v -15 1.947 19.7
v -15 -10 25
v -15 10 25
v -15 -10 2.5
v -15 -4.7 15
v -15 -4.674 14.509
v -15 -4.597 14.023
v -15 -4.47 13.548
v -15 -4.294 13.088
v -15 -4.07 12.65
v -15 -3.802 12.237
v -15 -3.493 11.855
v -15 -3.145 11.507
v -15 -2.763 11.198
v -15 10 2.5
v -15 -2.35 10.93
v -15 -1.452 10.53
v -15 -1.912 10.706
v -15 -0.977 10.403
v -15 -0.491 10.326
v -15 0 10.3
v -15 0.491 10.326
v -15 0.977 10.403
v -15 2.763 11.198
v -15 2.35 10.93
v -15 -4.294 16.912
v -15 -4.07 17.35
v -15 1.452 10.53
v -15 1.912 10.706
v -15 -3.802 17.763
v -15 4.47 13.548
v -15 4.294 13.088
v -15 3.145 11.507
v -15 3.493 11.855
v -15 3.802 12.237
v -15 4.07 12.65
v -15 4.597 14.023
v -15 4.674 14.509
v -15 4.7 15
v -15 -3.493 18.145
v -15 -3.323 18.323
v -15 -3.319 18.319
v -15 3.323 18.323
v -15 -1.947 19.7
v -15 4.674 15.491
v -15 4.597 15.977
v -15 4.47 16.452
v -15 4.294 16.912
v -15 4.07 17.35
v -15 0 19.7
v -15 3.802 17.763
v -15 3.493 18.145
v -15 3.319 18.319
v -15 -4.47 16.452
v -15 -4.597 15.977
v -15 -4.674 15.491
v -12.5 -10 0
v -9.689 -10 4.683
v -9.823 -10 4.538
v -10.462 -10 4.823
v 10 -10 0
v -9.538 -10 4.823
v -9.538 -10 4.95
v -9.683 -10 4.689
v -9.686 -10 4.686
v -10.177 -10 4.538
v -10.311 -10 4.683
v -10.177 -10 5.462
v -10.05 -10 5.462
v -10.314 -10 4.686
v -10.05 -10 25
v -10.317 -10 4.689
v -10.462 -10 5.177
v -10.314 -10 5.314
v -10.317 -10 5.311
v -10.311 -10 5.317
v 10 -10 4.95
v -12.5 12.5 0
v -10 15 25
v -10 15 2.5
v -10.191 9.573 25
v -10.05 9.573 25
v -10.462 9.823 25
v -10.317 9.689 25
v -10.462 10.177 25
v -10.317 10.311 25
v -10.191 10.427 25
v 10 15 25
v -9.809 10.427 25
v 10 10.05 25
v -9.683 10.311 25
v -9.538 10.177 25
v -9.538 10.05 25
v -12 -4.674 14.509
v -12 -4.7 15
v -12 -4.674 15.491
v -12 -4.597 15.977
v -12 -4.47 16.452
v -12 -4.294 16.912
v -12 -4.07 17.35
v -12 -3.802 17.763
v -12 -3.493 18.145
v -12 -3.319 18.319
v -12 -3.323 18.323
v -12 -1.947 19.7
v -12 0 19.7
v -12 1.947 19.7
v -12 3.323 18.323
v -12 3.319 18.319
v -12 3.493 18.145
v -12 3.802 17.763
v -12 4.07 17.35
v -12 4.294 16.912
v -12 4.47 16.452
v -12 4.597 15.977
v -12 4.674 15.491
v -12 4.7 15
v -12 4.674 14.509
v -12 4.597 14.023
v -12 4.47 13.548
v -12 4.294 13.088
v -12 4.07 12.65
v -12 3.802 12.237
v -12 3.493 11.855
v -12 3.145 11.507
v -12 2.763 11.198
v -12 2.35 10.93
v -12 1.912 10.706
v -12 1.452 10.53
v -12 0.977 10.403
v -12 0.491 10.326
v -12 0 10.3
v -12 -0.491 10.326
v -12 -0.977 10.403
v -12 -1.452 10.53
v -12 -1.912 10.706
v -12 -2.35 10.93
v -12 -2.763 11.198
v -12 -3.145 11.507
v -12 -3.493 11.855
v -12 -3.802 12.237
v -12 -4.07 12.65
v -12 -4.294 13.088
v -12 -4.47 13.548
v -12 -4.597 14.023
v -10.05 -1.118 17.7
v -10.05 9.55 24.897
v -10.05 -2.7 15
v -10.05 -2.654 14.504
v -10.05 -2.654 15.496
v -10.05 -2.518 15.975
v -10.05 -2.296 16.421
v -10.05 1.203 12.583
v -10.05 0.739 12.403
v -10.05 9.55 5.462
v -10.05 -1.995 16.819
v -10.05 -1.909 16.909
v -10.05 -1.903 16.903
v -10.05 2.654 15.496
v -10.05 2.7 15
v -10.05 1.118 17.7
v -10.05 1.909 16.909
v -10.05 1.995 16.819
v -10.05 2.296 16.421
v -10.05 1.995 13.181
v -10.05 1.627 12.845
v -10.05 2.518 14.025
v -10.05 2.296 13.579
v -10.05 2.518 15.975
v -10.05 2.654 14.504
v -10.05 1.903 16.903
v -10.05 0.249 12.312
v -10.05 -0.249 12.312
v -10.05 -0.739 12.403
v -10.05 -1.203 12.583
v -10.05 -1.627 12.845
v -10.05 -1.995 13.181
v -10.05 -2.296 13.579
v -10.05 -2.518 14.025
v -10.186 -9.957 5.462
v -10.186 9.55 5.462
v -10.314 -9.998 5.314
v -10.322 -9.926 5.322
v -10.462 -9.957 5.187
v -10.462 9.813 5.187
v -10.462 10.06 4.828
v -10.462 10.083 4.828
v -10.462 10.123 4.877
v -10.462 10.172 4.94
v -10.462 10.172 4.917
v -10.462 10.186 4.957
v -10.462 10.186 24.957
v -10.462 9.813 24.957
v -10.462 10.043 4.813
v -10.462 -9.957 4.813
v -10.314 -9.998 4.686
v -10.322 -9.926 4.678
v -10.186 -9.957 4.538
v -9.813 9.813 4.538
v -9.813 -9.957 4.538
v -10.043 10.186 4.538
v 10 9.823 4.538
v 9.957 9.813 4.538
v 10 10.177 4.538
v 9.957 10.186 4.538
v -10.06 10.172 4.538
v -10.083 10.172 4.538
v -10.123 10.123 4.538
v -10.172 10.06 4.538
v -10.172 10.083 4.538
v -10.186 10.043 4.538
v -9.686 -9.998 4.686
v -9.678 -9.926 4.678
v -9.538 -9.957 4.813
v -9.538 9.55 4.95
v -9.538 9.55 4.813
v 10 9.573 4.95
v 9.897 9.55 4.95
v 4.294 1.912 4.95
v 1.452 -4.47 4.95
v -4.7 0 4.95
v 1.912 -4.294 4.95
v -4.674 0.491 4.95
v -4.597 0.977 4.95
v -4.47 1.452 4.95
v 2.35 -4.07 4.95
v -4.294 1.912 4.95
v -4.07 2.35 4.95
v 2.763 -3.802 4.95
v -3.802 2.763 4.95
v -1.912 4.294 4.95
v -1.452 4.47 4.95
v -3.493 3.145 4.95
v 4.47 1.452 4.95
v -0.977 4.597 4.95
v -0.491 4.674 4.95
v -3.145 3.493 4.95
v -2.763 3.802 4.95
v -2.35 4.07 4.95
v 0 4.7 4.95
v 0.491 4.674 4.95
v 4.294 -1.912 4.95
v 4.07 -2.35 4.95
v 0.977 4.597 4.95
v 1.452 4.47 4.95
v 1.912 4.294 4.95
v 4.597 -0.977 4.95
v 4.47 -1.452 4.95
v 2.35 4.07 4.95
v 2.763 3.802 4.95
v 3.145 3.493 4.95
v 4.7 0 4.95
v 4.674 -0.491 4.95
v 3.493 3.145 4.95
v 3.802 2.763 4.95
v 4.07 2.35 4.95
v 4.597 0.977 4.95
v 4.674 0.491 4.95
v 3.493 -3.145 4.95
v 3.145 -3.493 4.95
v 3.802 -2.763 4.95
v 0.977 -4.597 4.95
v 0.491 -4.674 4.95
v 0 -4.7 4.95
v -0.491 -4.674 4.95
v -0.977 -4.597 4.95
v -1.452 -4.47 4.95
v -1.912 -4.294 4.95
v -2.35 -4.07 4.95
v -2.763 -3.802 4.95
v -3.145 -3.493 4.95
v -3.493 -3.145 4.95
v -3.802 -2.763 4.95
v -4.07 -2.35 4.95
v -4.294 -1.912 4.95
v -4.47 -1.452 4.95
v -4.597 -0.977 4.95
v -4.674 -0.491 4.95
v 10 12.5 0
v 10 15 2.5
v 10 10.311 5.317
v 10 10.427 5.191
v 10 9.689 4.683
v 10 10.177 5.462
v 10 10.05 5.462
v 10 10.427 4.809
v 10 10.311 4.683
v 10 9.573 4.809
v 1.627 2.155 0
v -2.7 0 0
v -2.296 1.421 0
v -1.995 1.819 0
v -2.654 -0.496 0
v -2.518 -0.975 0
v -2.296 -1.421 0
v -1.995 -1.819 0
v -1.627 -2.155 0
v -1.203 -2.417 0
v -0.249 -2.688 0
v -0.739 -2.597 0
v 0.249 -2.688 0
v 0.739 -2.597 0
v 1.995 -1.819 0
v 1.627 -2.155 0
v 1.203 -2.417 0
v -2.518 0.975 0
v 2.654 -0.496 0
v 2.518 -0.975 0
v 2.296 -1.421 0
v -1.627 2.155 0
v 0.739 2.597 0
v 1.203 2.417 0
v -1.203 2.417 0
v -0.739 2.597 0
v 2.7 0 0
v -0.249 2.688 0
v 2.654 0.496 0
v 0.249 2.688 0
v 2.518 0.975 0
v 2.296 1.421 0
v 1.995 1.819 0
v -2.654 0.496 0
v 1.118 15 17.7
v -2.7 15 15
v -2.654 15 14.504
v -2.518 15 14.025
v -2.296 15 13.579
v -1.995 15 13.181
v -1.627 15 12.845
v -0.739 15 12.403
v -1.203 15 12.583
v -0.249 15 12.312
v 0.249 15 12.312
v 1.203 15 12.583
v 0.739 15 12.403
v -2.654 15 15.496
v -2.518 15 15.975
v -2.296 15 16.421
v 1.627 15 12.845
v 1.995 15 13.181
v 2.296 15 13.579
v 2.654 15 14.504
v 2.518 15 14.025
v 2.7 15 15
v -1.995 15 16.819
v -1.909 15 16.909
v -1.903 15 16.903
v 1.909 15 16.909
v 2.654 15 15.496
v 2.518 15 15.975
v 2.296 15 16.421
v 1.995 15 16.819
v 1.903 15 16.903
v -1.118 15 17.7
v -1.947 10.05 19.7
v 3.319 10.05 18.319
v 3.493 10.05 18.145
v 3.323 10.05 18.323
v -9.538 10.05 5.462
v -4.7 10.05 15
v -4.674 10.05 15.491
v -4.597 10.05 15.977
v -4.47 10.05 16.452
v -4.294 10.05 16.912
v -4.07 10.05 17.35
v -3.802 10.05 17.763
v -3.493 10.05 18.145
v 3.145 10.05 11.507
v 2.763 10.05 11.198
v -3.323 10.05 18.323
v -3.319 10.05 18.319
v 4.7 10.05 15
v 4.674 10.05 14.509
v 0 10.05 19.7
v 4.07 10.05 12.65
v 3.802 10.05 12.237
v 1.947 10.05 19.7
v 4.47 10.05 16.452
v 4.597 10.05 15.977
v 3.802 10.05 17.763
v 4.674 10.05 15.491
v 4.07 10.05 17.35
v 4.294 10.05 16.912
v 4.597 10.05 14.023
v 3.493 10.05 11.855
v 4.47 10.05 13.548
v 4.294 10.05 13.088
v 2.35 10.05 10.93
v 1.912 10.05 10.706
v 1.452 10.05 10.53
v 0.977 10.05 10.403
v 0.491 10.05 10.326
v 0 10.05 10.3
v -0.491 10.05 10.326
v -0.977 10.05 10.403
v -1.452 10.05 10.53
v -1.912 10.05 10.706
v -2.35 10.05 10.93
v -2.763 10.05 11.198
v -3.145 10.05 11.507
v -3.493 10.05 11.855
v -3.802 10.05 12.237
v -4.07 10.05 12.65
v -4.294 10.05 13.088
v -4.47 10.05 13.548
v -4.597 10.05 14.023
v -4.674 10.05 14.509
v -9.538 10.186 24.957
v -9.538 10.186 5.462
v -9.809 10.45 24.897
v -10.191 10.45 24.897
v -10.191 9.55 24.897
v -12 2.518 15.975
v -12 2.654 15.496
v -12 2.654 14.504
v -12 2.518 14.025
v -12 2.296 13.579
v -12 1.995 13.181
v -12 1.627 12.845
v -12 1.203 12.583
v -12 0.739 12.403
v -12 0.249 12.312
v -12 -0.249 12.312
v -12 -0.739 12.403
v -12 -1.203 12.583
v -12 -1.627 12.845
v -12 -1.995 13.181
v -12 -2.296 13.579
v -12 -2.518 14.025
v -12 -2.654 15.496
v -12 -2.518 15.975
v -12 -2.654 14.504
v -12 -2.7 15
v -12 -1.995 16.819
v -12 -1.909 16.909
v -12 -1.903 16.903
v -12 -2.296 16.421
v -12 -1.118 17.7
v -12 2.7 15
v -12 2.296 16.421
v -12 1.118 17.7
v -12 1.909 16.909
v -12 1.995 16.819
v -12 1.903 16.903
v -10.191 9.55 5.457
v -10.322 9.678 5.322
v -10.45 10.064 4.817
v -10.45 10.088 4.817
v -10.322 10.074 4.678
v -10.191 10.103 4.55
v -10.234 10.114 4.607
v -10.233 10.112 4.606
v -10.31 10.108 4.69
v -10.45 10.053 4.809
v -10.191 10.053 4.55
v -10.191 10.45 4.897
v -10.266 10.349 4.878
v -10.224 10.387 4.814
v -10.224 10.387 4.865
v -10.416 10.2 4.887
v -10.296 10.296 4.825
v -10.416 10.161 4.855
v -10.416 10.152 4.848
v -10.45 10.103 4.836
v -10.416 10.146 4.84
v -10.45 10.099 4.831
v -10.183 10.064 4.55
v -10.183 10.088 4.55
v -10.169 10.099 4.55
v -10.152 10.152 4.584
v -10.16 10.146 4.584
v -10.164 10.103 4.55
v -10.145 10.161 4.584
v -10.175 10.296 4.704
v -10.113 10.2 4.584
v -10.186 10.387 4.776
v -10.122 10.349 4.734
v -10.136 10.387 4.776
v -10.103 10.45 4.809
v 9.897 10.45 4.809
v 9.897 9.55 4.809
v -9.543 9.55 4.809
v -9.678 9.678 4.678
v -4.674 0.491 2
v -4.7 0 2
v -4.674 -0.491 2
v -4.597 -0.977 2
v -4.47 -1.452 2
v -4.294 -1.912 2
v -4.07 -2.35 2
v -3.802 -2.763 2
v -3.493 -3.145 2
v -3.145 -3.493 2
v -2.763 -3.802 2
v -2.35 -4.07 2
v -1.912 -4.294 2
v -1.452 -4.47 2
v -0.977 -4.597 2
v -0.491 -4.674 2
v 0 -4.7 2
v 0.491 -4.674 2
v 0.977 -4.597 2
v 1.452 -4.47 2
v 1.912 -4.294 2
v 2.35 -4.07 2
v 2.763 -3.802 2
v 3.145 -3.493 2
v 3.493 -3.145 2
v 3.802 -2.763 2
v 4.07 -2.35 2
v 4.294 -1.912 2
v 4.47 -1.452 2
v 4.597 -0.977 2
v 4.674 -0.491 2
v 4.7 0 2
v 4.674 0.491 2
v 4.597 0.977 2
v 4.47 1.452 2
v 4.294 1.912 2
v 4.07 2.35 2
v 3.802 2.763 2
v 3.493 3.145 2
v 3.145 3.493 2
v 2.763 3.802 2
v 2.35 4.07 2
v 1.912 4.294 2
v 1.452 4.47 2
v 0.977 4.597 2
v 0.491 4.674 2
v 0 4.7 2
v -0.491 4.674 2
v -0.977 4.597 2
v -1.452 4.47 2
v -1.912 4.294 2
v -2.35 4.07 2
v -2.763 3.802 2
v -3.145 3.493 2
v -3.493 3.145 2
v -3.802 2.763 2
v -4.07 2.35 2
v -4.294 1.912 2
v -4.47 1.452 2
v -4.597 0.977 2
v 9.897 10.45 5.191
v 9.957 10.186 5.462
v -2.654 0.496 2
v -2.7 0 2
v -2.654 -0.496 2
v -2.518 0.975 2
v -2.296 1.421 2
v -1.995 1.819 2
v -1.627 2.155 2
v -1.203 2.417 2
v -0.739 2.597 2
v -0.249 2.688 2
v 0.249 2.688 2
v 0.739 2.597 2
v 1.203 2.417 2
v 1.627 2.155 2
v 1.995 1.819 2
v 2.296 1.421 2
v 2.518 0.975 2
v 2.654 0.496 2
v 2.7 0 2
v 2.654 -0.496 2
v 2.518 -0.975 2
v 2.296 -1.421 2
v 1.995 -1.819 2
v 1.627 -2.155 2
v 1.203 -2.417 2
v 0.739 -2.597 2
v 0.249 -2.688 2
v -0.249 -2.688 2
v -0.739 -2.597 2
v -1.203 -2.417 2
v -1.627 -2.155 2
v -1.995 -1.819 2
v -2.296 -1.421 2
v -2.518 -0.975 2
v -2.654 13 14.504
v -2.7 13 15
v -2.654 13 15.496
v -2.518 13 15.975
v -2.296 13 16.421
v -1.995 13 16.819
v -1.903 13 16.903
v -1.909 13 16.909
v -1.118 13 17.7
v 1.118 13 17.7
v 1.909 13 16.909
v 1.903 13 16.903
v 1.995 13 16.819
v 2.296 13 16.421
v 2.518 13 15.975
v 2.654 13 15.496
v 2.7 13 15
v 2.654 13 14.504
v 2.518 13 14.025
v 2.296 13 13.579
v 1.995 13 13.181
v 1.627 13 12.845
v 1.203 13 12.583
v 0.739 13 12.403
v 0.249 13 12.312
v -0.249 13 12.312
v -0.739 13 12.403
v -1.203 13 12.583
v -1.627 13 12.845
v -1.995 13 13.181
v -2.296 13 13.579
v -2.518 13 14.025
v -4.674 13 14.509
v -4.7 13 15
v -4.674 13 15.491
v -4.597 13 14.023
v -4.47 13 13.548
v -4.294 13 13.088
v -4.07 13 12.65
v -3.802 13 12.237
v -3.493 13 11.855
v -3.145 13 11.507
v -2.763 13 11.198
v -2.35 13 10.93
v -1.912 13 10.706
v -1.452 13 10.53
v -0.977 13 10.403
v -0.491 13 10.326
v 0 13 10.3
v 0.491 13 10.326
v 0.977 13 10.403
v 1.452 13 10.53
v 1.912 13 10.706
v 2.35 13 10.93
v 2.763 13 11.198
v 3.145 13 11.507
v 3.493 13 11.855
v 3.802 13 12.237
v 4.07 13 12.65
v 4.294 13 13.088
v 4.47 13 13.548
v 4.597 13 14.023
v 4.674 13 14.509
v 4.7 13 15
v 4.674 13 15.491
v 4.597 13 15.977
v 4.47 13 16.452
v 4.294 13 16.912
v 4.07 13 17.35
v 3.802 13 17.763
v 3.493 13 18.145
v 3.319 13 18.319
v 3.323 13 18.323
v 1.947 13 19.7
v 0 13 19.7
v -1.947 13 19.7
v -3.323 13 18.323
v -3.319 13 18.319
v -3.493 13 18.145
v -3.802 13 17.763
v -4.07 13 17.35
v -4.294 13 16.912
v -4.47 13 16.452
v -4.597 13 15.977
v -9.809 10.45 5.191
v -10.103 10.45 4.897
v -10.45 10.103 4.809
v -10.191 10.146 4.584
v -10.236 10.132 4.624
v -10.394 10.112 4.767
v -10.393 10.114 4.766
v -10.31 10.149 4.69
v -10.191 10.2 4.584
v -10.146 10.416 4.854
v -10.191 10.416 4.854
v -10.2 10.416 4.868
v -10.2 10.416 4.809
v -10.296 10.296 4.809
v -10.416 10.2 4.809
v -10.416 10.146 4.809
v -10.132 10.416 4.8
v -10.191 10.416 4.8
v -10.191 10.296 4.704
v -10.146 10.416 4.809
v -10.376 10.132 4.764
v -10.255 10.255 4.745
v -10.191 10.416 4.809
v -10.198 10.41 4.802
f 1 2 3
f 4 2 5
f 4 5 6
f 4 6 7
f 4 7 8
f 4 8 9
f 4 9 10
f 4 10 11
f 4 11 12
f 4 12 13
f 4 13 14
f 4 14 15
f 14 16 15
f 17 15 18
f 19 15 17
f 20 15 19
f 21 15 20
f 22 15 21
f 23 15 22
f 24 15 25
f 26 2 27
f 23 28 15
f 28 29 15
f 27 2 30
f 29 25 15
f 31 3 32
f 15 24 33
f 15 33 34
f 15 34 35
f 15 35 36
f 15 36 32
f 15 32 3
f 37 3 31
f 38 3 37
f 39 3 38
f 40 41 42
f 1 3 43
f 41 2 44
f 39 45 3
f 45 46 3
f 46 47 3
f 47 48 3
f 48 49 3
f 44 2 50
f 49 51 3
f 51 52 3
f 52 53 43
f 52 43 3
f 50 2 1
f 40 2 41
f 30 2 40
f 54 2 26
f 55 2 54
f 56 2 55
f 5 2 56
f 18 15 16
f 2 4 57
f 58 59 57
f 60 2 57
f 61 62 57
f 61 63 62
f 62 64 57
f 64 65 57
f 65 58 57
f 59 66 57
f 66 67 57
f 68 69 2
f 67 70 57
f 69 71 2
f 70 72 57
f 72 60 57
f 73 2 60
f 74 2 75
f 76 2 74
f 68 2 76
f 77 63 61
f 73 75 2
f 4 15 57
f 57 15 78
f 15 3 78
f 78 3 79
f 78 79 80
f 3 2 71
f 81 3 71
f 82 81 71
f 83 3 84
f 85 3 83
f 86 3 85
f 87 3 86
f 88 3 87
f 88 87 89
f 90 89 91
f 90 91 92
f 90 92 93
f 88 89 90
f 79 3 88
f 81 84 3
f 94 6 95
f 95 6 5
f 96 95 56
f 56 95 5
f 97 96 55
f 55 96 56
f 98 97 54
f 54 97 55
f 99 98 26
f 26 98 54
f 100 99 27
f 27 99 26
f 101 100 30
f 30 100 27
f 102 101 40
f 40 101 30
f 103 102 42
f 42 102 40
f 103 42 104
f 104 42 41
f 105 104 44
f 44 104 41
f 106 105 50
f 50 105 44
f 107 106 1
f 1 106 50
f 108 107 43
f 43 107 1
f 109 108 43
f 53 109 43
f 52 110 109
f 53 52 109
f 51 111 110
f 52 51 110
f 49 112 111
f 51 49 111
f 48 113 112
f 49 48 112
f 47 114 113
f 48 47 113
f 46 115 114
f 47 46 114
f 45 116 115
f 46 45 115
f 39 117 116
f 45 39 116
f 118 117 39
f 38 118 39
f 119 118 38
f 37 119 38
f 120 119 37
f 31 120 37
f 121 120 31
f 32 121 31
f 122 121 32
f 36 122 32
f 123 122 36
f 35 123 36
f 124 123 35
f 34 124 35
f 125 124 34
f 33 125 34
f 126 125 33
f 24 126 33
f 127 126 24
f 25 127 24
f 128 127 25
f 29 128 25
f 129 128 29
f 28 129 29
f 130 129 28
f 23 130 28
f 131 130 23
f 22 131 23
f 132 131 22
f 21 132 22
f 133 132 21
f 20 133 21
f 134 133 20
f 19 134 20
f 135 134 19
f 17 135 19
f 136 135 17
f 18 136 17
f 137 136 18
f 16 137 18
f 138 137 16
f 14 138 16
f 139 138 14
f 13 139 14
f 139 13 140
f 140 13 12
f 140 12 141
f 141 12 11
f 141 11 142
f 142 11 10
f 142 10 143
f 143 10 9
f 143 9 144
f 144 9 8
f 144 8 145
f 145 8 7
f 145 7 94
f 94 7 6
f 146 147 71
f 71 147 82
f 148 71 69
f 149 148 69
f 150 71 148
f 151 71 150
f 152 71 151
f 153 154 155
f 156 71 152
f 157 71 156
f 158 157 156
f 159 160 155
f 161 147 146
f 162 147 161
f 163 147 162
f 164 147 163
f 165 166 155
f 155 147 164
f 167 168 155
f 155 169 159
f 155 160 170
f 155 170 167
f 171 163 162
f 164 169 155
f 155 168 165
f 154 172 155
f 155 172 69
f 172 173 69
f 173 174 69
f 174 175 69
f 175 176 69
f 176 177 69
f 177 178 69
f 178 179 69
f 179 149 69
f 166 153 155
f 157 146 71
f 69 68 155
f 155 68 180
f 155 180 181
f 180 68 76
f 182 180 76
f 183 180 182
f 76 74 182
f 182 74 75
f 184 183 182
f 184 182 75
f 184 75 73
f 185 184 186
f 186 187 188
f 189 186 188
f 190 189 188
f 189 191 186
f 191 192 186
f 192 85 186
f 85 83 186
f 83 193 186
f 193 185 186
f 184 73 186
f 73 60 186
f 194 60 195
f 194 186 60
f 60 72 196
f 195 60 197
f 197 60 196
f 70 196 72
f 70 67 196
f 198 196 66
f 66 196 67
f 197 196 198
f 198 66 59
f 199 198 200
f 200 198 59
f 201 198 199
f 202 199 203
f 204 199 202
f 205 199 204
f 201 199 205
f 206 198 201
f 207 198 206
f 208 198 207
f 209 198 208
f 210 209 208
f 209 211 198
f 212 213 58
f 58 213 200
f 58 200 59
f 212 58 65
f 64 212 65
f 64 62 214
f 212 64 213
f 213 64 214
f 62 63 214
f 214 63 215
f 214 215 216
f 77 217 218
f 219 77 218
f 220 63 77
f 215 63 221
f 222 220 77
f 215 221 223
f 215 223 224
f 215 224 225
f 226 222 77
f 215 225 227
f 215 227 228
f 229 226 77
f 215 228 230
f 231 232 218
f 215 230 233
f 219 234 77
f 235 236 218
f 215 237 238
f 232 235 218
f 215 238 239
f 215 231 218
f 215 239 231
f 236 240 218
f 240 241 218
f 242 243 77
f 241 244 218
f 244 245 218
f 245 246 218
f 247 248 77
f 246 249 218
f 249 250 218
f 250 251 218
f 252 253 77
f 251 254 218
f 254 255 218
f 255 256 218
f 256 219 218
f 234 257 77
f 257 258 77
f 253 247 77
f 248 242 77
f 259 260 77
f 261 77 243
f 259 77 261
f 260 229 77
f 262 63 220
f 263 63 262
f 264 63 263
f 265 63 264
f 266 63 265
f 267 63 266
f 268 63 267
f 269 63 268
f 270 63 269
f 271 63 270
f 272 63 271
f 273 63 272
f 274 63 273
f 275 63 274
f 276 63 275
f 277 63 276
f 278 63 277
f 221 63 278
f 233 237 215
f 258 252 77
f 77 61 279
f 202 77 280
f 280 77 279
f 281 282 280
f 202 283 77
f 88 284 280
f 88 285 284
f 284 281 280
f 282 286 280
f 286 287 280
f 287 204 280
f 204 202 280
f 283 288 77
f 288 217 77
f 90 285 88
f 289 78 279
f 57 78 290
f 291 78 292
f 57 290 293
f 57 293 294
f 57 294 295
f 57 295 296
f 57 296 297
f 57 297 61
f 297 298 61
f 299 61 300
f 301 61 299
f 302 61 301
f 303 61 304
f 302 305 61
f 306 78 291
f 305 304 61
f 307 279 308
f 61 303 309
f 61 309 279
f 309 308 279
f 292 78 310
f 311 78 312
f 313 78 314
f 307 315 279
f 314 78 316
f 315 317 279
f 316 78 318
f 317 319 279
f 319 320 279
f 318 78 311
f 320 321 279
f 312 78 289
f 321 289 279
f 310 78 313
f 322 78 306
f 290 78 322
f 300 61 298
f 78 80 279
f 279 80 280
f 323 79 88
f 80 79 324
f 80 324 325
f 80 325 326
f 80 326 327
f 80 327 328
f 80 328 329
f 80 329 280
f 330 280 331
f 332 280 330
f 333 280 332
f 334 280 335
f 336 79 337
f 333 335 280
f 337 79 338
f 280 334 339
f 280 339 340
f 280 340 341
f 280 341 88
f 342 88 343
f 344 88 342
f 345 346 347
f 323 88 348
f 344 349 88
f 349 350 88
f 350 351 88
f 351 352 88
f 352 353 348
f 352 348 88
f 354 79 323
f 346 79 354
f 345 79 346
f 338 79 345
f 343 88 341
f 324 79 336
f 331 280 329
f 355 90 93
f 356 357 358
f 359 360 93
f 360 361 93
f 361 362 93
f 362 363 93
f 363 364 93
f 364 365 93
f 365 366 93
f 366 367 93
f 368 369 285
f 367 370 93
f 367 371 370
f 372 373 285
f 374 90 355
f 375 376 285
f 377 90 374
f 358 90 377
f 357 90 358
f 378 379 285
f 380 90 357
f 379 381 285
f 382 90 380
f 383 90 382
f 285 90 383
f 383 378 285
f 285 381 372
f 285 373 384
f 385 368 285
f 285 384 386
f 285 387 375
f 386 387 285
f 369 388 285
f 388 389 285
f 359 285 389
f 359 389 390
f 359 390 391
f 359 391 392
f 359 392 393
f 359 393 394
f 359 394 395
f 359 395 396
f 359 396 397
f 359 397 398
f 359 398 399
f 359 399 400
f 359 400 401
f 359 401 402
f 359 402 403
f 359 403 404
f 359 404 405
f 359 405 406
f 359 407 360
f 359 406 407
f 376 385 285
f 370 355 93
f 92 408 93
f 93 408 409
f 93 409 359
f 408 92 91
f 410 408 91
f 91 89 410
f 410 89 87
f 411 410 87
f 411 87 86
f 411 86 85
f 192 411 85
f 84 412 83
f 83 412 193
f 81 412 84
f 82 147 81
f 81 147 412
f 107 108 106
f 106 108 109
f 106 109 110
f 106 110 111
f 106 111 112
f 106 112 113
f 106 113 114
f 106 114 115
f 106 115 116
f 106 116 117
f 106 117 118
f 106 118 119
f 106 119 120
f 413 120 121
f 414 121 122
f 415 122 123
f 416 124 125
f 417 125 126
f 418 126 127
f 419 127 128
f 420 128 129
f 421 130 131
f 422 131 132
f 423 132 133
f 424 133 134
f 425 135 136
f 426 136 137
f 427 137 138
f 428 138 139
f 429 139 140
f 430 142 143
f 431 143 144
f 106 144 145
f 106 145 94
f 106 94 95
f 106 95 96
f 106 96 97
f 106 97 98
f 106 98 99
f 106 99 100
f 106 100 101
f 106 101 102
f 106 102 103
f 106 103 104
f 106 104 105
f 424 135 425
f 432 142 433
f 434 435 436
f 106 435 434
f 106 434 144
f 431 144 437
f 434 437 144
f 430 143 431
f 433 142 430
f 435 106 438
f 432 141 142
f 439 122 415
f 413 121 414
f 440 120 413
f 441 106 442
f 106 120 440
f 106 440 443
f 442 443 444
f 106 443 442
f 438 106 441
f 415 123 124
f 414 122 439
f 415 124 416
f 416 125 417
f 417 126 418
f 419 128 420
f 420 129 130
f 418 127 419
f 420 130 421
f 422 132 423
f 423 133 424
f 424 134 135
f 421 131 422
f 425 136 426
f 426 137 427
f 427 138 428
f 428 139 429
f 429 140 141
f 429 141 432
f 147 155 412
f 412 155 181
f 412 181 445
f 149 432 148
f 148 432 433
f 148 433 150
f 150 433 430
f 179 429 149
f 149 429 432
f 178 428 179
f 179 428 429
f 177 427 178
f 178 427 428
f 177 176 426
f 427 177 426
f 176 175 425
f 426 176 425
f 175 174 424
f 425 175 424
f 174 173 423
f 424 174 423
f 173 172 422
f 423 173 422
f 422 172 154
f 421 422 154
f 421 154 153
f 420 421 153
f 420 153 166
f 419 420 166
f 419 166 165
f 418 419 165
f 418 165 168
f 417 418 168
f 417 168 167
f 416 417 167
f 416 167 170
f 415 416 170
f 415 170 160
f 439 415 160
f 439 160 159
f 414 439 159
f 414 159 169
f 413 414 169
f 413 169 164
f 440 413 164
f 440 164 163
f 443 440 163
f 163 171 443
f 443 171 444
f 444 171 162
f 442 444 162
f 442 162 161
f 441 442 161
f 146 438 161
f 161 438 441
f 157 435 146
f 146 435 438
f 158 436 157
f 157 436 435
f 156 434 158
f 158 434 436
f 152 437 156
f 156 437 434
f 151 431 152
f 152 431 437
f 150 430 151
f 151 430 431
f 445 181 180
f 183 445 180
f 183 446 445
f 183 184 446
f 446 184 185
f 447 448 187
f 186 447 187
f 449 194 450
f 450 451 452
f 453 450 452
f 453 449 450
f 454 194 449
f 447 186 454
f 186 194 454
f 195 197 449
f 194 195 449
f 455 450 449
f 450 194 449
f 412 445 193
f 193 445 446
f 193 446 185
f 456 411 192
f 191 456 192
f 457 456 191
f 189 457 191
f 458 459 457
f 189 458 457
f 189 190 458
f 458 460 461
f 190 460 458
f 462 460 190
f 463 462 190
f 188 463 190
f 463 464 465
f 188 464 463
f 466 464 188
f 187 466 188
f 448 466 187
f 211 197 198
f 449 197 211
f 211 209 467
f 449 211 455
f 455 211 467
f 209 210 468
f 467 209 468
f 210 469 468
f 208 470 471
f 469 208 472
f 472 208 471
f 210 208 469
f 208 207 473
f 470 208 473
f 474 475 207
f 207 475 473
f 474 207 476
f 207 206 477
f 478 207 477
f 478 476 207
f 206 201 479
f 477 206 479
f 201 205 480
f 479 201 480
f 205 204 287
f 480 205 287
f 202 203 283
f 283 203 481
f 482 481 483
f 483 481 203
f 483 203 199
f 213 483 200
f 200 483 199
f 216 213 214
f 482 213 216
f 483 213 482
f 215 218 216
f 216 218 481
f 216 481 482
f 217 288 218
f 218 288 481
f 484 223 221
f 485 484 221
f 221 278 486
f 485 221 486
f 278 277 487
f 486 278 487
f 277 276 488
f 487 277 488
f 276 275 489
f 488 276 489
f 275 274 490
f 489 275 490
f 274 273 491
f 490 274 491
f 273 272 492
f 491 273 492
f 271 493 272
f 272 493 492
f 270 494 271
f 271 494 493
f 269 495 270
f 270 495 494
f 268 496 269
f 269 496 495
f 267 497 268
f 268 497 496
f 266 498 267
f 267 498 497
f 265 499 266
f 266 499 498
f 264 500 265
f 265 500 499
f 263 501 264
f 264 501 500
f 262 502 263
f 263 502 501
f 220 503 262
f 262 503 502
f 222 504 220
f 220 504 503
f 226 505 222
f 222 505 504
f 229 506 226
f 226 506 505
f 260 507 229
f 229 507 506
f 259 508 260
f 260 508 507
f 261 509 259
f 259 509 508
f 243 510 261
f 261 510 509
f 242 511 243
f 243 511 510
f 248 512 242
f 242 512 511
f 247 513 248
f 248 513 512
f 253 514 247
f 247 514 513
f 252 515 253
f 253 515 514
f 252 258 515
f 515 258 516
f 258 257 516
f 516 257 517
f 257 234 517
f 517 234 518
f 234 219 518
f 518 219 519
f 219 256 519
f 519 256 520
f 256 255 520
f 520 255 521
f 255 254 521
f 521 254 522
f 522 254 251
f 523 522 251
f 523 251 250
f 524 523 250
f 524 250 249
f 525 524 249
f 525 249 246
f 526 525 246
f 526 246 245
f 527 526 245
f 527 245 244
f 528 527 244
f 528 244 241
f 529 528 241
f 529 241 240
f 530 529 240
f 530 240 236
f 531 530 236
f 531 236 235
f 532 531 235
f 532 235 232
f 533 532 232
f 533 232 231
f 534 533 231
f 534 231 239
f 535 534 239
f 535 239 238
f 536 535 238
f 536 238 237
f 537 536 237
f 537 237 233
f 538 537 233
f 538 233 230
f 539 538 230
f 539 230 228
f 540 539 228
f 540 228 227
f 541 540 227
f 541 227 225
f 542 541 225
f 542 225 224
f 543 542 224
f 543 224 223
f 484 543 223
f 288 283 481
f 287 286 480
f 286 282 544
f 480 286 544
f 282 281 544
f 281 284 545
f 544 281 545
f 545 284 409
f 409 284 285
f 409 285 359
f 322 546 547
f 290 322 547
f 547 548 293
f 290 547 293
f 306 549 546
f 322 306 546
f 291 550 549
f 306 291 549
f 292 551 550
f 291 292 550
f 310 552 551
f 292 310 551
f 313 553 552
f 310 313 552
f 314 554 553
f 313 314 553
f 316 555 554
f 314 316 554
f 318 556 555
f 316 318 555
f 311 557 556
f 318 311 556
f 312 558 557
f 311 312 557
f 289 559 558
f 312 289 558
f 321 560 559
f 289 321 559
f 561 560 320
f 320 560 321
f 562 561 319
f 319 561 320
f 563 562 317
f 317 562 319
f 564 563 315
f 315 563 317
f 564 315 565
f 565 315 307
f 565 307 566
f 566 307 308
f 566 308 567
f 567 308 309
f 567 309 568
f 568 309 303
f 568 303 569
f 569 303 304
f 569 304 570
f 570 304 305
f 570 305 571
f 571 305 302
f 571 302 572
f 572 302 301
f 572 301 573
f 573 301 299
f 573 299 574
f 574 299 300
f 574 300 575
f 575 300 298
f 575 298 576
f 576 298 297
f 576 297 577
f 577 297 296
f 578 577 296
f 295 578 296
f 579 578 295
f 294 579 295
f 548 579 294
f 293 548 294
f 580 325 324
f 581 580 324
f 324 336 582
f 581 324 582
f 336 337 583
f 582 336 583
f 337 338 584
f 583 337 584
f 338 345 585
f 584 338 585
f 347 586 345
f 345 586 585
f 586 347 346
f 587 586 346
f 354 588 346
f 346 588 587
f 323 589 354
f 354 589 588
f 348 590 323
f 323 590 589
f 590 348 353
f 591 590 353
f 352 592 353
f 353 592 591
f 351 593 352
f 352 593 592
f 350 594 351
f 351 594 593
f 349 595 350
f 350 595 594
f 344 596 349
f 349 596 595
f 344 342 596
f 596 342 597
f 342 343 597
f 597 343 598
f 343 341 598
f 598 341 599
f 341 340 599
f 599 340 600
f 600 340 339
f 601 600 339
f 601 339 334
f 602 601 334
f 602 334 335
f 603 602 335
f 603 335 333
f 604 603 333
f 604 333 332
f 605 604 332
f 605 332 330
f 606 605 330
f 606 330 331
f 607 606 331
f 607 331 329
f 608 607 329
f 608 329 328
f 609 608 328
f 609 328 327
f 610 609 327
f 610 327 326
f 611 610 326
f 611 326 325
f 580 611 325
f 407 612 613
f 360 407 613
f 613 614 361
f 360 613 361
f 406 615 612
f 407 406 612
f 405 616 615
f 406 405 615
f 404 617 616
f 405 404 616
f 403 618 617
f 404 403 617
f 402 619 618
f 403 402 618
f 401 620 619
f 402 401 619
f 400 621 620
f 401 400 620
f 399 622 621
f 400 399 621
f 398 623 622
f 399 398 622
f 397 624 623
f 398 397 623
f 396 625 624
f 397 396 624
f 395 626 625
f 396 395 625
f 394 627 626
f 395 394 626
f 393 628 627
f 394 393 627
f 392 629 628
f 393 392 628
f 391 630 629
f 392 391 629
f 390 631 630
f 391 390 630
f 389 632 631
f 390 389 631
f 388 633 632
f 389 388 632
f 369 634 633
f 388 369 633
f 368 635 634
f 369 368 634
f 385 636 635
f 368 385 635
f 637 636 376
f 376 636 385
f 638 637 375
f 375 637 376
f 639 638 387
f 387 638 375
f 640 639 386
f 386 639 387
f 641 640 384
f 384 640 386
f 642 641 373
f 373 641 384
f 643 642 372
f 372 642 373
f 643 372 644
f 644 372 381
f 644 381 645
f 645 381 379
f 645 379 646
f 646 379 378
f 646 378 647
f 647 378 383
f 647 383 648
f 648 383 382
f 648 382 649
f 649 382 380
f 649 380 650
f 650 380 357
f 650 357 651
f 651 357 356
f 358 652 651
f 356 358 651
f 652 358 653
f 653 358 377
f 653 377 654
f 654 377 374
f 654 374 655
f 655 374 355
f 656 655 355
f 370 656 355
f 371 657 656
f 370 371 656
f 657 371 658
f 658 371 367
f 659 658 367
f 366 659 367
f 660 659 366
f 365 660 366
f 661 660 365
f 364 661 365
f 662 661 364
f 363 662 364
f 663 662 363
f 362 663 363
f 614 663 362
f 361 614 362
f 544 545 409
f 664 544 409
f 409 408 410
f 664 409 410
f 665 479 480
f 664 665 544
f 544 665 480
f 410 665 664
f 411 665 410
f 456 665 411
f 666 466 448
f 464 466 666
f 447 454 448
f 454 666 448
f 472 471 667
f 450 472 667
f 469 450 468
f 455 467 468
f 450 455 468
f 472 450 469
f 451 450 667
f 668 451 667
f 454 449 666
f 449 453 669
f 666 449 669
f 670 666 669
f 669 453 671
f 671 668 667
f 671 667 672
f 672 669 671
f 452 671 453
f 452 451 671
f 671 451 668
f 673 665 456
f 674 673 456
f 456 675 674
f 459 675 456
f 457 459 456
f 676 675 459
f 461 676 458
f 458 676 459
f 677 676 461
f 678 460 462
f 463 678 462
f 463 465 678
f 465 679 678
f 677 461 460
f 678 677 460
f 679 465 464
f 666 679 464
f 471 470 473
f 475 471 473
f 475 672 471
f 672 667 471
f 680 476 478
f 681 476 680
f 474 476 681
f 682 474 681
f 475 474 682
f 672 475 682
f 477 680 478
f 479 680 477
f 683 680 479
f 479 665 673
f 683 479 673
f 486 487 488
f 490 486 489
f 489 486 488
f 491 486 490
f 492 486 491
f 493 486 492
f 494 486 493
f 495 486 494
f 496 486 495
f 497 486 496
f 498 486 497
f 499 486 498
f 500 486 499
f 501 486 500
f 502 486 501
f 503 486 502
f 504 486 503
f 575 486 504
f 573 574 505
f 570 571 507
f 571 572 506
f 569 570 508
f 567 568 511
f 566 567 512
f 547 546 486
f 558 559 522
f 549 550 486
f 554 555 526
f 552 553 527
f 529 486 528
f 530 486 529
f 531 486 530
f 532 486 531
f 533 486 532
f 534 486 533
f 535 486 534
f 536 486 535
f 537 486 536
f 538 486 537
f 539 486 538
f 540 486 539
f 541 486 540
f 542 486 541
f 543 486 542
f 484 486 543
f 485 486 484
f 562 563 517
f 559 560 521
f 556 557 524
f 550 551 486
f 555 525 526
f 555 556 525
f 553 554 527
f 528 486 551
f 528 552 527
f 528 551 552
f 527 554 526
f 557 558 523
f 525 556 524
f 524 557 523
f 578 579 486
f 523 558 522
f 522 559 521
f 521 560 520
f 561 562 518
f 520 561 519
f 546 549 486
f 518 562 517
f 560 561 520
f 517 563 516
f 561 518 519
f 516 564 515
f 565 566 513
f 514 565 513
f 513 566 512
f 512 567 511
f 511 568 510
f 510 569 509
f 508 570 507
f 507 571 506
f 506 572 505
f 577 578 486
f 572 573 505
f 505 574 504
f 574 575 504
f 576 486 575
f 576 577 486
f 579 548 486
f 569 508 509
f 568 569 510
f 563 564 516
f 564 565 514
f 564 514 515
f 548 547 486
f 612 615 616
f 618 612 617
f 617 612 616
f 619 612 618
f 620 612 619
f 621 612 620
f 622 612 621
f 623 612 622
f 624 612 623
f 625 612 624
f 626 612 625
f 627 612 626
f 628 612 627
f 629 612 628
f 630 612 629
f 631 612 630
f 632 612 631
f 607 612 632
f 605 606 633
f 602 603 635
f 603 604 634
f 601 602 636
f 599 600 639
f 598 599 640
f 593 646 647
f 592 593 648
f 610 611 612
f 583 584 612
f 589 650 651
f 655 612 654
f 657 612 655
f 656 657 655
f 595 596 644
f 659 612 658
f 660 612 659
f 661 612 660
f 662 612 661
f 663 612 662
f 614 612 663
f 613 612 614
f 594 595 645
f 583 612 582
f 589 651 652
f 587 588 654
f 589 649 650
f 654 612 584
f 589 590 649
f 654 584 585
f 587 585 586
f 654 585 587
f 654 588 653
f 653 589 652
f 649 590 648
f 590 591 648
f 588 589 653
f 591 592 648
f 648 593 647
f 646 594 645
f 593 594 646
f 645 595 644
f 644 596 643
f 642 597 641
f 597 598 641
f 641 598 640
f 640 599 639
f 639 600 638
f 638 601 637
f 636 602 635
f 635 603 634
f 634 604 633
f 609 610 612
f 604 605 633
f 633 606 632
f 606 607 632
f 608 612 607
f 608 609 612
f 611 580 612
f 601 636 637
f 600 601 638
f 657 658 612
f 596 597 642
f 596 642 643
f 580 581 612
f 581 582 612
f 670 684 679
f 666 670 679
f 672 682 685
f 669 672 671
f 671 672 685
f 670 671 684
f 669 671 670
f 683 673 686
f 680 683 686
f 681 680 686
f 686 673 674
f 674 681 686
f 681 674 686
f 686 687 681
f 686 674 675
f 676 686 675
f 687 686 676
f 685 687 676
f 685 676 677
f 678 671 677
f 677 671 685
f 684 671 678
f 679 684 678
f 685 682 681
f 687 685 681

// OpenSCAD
// file: functions.scad
//a cylinder with a flat on top - for drawing vertical holes.
module cap_cylinder(r=1, h=1, center=false){
	render() union(){
		cylinder(r=r, h=h, center=center);
		intersection(){
			rotate([0,0,22.5]) cylinder(r=r/cos(180/8), h=h, $fn=8, center=center);
			translate([0,-r/cos(180/4),0]) rotate([0,0,0]) cylinder(r=r/cos(180/4), h=h, $fn=4, center=center);
		}
	}
}
// file: configuration.scad
wall = 5;

screw_slop = .2;

beam = 20;

m5_rad = 5/2+screw_slop;
m5_cap_rad = 9/2+screw_slop;
m5_cap_height = 3;

//makes ll the holes have lots of segments
$fs=.5;
$fa=.1;
// main file
include <configuration.scad>
include <functions.scad>

inside_rad = .5;

corner();


//a standard corner, with a slight twist - one beam is internal, the other two are surface-mount.
module corner(){
	difference(){
		union(){
			hull(){
				translate([-wall/4,wall/4,wall/2]) cube([beam+wall/2, beam+wall/2, wall], center=true);
				translate([0,beam/2+wall/2,beam/2+wall*3/4]) cube([beam, wall, beam+wall/2], center=true);
				translate([-beam/2-wall/2,0,beam/2+wall*3/4]) cube([wall, beam, beam+wall/2], center=true);
			}
		}

		//hollow out the center
		translate([0,0,beam/2+wall]) cube([beam+.1, beam+.1, beam+.1], center=true);

		//cut the inside corners
		translate([-beam/2, beam/2, wall]) for(i=[0,-90]) for(j=[0,-90])
			rotate([0,i,0])
			rotate([0,0,j]) 
			hull(){
				sphere(r=inside_rad);
				translate([beam,0,0]) sphere(r=inside_rad); 
			}

		corner_holes();
	}
}

module corner_holes(){
	translate([0,0,-.1]) cylinder(r=m5_rad, h=wall);
	translate([0,0,wall-m5_cap_height]) cylinder(r=m5_cap_rad, h=wall);

	translate([0, beam/2+wall, beam/2+wall]) rotate([90,0,0]){
		translate([0,0,-.1]) rotate([0,0,180]) cap_cylinder(r=m5_rad, h=wall);
		translate([0,0,wall-m5_cap_height]) rotate([0,0,180]) cap_cylinder(r=m5_cap_rad, h=wall);
	}

	translate([-beam/2-wall, 0, beam/2+wall]) rotate([0,90,0]){
		translate([0,0,.1]) rotate([0,0,270]) cap_cylinder(r=m5_rad, h=wall);
		translate([0,0,m5_cap_height-wall]) rotate([0,0,270]) cap_cylinder(r=m5_cap_rad, h=wall);
	}
}
